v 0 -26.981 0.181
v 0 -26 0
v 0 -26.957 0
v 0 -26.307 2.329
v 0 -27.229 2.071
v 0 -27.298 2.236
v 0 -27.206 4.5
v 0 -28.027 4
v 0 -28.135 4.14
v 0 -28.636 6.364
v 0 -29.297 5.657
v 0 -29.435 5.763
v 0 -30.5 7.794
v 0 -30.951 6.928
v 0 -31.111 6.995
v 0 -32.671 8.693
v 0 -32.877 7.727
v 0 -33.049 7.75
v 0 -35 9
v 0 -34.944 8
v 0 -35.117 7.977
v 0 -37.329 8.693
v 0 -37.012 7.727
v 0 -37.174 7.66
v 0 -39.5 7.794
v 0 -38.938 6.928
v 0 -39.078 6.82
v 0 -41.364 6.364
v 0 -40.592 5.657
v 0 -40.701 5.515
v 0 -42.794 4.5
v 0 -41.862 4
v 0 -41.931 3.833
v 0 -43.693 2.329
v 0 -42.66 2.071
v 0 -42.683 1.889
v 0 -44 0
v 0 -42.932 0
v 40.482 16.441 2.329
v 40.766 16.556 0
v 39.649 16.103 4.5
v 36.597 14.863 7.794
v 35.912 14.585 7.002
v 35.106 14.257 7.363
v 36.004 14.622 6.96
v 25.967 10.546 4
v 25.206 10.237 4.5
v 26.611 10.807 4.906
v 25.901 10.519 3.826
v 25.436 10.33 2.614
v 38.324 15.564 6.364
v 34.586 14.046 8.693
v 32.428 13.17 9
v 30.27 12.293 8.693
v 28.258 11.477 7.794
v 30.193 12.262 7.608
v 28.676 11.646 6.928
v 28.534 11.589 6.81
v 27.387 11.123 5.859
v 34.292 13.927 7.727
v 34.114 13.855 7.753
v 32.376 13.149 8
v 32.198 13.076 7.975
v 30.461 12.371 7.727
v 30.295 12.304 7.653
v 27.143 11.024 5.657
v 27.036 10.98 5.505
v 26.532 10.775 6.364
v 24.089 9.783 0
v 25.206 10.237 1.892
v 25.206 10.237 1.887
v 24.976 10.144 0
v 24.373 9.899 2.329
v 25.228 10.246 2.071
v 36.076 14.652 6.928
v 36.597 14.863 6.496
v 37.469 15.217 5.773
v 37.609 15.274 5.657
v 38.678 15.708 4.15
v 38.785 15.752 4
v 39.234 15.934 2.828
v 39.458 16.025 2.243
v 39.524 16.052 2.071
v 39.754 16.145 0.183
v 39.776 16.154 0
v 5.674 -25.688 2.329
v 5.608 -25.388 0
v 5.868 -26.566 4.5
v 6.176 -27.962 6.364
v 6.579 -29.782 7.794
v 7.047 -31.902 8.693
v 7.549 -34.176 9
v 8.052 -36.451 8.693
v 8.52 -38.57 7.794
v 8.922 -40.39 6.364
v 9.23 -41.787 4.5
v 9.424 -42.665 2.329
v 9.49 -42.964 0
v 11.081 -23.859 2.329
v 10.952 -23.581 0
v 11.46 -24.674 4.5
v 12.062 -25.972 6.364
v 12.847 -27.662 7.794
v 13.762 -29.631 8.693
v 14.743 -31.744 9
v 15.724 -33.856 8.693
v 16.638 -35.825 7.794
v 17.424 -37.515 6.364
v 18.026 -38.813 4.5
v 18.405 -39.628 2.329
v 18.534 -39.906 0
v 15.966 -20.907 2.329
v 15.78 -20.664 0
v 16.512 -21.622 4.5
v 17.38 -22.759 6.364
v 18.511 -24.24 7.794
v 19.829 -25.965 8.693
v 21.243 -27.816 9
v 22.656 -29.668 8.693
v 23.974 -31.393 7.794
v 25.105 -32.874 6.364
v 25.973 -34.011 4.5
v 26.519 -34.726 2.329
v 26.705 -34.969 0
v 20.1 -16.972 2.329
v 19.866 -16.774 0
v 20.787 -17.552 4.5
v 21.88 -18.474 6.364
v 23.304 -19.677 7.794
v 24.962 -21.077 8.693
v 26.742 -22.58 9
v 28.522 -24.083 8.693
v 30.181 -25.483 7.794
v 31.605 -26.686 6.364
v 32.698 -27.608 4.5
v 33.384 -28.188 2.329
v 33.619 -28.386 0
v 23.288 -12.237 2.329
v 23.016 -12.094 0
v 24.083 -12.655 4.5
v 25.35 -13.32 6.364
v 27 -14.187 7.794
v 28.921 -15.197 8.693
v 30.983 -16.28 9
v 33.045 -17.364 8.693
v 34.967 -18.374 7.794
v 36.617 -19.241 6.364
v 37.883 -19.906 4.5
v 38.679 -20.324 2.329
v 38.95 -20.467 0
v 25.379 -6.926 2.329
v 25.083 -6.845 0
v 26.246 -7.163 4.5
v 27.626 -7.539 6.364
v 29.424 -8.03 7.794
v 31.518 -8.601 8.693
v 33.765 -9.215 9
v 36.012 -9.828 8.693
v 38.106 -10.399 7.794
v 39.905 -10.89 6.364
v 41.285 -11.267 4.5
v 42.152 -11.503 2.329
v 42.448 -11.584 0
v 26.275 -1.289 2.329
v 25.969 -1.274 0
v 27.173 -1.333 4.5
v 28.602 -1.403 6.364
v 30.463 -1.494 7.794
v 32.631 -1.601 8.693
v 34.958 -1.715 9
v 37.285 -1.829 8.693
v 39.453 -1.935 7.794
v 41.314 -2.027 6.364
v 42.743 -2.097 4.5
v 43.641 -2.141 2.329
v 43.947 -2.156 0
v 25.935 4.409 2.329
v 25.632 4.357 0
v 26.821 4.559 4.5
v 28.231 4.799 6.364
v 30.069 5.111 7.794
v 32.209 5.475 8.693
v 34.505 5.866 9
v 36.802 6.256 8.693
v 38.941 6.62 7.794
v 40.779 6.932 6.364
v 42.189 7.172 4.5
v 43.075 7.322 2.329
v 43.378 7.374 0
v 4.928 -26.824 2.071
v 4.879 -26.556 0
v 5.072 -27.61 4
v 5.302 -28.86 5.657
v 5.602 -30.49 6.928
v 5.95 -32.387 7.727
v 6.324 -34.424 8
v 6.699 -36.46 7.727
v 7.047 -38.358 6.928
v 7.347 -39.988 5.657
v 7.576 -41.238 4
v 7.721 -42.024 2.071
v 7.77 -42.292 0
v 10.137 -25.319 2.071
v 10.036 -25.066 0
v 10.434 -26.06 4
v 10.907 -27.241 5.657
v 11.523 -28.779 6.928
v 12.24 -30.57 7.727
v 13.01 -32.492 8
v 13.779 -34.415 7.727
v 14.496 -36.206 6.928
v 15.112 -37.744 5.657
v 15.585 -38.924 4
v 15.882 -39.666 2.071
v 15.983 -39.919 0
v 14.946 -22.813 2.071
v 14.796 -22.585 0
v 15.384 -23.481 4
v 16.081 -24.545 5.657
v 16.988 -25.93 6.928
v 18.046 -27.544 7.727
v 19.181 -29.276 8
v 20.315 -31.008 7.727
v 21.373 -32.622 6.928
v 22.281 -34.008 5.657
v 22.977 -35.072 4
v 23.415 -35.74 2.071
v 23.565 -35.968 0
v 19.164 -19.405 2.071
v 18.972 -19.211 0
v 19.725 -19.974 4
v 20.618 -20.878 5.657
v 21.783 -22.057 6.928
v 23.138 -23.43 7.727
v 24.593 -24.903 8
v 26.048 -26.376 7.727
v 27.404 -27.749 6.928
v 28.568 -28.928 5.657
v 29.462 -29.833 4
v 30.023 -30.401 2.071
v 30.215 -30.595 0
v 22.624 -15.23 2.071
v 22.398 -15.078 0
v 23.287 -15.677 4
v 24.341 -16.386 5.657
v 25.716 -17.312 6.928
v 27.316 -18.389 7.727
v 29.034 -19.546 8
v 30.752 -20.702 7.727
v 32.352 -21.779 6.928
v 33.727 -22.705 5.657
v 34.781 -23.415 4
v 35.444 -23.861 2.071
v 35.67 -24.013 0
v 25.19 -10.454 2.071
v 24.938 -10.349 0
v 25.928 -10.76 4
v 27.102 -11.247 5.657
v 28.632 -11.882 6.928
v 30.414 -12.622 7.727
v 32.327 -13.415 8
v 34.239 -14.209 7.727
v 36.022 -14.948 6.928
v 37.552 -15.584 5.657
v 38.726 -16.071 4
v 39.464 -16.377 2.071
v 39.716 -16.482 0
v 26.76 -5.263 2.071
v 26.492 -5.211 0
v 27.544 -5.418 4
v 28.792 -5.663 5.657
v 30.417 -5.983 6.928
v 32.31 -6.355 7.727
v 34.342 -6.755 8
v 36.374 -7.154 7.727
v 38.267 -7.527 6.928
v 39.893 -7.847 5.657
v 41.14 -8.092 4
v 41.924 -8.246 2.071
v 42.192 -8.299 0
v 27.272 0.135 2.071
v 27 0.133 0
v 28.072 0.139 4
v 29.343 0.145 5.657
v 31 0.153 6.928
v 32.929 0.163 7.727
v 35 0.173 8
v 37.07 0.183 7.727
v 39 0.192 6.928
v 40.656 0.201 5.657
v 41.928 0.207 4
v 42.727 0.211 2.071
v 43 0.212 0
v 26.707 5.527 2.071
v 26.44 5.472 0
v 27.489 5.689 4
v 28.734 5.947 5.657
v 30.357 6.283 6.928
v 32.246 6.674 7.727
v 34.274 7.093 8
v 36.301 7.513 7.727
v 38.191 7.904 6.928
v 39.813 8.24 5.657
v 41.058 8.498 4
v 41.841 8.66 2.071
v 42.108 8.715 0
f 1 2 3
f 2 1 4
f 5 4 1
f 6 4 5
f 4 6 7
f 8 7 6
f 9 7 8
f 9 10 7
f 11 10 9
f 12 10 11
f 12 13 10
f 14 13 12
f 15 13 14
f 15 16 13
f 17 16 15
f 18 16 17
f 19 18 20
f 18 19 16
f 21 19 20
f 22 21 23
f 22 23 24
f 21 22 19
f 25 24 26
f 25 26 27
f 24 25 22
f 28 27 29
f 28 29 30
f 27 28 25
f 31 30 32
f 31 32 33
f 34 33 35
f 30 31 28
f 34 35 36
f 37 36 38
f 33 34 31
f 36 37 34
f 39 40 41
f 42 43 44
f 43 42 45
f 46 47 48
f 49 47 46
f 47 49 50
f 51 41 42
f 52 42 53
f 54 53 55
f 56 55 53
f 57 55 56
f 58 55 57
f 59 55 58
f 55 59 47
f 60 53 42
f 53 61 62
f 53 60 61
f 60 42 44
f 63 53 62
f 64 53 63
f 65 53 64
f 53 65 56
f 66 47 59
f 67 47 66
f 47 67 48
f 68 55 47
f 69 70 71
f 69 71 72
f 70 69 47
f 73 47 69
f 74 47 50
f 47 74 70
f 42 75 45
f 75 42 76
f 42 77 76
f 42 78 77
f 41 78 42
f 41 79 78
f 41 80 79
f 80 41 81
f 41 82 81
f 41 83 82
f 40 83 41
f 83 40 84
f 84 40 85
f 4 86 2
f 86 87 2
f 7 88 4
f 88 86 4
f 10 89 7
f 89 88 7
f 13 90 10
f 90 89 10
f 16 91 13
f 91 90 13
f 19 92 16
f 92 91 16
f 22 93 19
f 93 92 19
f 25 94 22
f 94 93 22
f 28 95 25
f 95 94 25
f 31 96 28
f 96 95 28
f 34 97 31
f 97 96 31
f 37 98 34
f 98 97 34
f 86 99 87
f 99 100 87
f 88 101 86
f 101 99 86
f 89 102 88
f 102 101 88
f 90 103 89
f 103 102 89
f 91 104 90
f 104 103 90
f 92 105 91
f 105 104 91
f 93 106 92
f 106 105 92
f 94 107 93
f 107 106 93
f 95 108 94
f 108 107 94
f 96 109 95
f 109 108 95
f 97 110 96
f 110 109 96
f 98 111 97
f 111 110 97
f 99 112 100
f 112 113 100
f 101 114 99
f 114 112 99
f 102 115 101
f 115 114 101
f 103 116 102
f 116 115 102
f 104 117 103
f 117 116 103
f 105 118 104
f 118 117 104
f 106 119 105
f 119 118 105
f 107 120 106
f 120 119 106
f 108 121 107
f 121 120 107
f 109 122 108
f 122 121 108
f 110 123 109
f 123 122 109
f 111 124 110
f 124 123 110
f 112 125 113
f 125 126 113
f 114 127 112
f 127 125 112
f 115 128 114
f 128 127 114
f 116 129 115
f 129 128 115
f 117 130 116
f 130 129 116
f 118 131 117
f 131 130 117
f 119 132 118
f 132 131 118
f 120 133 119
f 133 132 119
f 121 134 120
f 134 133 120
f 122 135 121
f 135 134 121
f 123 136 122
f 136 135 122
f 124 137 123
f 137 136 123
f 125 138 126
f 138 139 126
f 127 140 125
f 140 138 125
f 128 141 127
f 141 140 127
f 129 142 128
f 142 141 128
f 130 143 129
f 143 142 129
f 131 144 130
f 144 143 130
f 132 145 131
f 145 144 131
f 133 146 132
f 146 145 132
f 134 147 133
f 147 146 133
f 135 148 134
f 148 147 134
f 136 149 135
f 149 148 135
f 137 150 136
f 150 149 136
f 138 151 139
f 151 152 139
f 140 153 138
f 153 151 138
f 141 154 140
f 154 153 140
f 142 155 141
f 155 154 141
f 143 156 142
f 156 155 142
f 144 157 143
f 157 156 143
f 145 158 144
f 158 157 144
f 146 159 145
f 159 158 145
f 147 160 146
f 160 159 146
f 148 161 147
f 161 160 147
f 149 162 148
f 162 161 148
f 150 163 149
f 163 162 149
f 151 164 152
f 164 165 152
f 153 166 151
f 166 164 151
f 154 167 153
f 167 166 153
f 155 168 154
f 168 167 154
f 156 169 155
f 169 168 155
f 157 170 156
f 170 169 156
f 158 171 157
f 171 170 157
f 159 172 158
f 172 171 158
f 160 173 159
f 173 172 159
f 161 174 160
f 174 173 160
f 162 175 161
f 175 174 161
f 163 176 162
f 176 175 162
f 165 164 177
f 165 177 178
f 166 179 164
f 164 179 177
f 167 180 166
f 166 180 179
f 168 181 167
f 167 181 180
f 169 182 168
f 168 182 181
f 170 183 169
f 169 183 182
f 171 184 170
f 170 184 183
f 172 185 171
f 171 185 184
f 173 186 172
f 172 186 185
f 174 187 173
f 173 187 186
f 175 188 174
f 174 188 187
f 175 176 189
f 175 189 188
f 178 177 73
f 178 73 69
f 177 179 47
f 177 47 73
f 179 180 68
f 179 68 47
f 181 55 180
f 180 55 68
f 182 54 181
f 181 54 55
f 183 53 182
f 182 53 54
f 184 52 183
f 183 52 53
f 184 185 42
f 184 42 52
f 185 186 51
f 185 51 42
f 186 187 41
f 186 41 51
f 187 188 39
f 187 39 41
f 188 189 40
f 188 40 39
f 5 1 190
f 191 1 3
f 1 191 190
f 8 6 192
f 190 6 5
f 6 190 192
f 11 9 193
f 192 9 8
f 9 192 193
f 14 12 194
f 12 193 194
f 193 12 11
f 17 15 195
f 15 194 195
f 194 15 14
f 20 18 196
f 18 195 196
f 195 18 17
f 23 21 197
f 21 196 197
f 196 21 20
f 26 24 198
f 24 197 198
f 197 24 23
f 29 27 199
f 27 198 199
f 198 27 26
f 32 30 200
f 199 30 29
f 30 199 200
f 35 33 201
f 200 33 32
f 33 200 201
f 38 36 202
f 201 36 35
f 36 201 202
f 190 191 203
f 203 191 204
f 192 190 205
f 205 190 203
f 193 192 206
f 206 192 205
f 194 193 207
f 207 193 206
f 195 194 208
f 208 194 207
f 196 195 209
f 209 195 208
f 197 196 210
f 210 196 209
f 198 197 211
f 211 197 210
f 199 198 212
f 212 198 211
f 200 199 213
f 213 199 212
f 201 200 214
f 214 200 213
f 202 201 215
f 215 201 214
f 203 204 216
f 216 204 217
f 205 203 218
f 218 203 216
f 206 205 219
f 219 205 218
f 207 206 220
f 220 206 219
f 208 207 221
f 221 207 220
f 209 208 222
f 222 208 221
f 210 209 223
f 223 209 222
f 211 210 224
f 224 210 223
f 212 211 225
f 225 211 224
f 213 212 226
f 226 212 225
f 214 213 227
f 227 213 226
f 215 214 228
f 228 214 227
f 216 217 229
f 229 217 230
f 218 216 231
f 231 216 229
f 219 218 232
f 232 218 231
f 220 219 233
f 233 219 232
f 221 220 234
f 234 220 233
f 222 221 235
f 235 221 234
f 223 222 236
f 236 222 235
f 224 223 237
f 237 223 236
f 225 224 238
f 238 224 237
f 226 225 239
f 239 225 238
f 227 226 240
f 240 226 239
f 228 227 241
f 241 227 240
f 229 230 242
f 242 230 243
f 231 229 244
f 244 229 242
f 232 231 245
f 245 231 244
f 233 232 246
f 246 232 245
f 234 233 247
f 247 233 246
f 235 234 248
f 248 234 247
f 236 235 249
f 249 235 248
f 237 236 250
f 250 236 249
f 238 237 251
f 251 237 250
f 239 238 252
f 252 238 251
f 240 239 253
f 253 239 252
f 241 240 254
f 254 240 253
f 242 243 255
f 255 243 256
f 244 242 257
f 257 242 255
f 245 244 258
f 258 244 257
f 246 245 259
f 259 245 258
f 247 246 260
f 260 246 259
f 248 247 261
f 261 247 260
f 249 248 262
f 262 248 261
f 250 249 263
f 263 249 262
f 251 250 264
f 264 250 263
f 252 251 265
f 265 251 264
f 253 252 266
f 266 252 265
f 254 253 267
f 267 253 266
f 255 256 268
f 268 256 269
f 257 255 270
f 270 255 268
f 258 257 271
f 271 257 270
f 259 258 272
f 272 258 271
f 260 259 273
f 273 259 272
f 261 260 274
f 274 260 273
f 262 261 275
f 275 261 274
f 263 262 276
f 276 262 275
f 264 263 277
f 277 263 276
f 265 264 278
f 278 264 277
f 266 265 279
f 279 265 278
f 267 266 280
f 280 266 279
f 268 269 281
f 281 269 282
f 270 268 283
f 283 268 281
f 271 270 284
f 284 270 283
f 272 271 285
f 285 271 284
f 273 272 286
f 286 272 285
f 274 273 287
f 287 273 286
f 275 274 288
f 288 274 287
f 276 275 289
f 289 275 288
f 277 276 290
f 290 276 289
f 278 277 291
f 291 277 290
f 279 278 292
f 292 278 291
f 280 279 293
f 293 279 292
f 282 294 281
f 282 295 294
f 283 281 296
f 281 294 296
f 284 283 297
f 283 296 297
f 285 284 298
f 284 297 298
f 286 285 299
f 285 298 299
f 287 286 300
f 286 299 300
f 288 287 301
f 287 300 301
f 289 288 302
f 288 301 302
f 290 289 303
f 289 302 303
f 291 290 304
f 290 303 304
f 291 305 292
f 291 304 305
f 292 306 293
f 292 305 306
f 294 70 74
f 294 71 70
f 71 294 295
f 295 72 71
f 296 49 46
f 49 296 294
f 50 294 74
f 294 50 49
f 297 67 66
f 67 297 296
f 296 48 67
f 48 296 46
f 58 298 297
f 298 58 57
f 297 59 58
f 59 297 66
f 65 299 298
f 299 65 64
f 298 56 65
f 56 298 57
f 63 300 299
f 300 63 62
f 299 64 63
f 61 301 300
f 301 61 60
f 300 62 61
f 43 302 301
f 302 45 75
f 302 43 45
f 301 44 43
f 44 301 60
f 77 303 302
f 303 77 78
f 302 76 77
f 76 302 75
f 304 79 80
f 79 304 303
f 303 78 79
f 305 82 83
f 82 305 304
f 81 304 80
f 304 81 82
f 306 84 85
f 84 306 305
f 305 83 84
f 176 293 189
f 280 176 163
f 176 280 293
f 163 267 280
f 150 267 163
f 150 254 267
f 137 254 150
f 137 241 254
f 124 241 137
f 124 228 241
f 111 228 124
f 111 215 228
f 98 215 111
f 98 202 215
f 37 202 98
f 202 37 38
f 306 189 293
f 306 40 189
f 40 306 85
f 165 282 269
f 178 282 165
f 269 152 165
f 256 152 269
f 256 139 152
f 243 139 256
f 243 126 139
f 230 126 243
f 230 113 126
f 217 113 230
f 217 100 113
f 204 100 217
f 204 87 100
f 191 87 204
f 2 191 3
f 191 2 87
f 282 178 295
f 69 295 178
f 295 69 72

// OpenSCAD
// file: ../build_environments.scad
// build_environments.scad: modules to build level sections
//

module pool(diameter=10.0, wall_height=2.0, step_width=3.0, connections=[])
{
    difference() {
        union() {
        difference() {
            cylinder(h=0.5,r1=diameter+step_width,r2=diameter+step_width,$fn=48);
            translate([0,0,-0.1])
                cylinder(h=0.7,r1=diameter,r2=diameter,$fn=48);
        }
        difference() {
            cylinder(h=wall_height,r1=diameter+step_width+1.0,r2=diameter+step_width+1.0,$fn=48);
            translate([0,0,-0.1])
                cylinder(h=wall_height+0.2,r1=diameter+step_width,r2=diameter+step_width,$fn=48);
        }
        }
    
        for (c = connections)
        {
            rotate([0,90,0]) {
                angle = atan2(c[1],c[0]);
                rotate([-angle,0,0]) {
                    cylinder(h=diameter+5.0,r1=c[2],r2=c[2],$fn=48);
                }
            }
        }
    }
}

module straight(length=10.0, width=2.0, dy1=0.0, dy2=0.0, dz=0.0)
{
    dims = [0, 0, 0, 0, 0, (dz/length)];
    matrix = [
        [ 1, dims[0], dims[1], 0 ],
        [ dims[2], 1, dims[4], 0 ],
        [ dims[5], dims[3], 1, 0 ],
        [ 0, 0, 0, 1 ]
    ];
    multmatrix(matrix)
    difference() {
        translate([dy1,0,0])
        union() {
            rotate([0,90,0]) {
                difference() {
                    cylinder(h=(length-dy1-dy2),r1=width+1.0,r2=width+1.0,$fn=24);
                    translate([0,0,-0.1])
                        cylinder(h=(length-dy1-dy2+0.2),r1=width,r2=width,$fn=24);
                }
                difference() {
                    cylinder(h=1.0,r1=width+2.0,r2=width+2.0,$fn=24);
                    translate([0,0,-0.1])
                        cylinder(h=1.2,r1=width,r2=width,$fn=24);
                }
                translate([0,0,(length-dy1-dy2)-1.0]) {
                    difference() {
                        cylinder(h=1.0,r1=width+2.0,r2=width+2.0,$fn=24);
                        translate([0,0,-0.1])
                            cylinder(h=1.2,r1=width,r2=width,$fn=24);
                    }
                }
            }
        }
        translate([0,0,-(2*width+4.0)/2])
            cube([3*length,3*length,2*width+4.0],center=true);
    }
}

module curve(p0=[0,0], center=[0,0], dir=1, angle=0.0, width=2.0)
{
    radius = sqrt((p0[0]-center[0])*(p0[0]-center[0]) + (p0[1]-center[1])*(p0[1]-center[1]));
    if (dir == 0) {
        difference() {
            rotate([0,0,-90])
            difference() {
                rotate_extrude(angle = angle, convexity = 10, $fn=32)
                    translate([radius, 0, 0])
                        circle(r = width+1.0,$fn=24);
                rotate([0,0,-1.0])
                    rotate_extrude(angle = angle+2.0, convexity = 10, $fn=32)
                        translate([radius, 0, 0])
                            circle(r = width,$fn=24);
            }
            translate([0,0,-(2*width+4.0)/2])
                cube([5*radius,5*radius,2*width+4.0],center=true);
        }
    }
    else {
        difference() {
            rotate([0,0,90])
            difference() {
                rotate_extrude(angle = -angle, convexity = 10, $fn=32)
                    translate([radius, 0, 0])
                        circle(r = width+1.0,$fn=24);
                rotate([0,0,1.0])
                    rotate_extrude(angle = -angle-2.0, convexity = 10, $fn=32)
                        translate([radius, 0, 0])
                            circle(r = width,$fn=24);
            }
            translate([0,0,-(2*width+4.0)/2])
                cube([5*radius,5*radius,2*width+4.0],center=true);
        }
    }

}

// test pool
//pool(diameter=12.0000, wall_height=3.0000, step_width=3.0000, connections=[[0.0000,-26.0000,2.0000], [23.6074,0.0000,2.0000]]);

// test straight, slope
//straight(length=26.0000, width=2.0000, dy1=11.8322, dy2=6.7082, dz=0.0000);
//straight(length=29.1549, width=12.0000, dy1=0.0000, dy2=0.0000, dz=-15.0000);

// test curve
//curve(p0=[23.6074, 0.0000], center=[23.6074, 5.0000], dir=0, angle=60.1011, width=2.0000);
//curve(p0=[33.6426, 12.4219], center=[37.9771, 9.9295], dir=1, angle=120.4627, width=2.0000);
// main file
use <../build_environments.scad>;
curve(p0=[13.6007, 145.8619], center=[47.1675, 135.9486], dir=0, angle=112.1035, width=8.0000);
